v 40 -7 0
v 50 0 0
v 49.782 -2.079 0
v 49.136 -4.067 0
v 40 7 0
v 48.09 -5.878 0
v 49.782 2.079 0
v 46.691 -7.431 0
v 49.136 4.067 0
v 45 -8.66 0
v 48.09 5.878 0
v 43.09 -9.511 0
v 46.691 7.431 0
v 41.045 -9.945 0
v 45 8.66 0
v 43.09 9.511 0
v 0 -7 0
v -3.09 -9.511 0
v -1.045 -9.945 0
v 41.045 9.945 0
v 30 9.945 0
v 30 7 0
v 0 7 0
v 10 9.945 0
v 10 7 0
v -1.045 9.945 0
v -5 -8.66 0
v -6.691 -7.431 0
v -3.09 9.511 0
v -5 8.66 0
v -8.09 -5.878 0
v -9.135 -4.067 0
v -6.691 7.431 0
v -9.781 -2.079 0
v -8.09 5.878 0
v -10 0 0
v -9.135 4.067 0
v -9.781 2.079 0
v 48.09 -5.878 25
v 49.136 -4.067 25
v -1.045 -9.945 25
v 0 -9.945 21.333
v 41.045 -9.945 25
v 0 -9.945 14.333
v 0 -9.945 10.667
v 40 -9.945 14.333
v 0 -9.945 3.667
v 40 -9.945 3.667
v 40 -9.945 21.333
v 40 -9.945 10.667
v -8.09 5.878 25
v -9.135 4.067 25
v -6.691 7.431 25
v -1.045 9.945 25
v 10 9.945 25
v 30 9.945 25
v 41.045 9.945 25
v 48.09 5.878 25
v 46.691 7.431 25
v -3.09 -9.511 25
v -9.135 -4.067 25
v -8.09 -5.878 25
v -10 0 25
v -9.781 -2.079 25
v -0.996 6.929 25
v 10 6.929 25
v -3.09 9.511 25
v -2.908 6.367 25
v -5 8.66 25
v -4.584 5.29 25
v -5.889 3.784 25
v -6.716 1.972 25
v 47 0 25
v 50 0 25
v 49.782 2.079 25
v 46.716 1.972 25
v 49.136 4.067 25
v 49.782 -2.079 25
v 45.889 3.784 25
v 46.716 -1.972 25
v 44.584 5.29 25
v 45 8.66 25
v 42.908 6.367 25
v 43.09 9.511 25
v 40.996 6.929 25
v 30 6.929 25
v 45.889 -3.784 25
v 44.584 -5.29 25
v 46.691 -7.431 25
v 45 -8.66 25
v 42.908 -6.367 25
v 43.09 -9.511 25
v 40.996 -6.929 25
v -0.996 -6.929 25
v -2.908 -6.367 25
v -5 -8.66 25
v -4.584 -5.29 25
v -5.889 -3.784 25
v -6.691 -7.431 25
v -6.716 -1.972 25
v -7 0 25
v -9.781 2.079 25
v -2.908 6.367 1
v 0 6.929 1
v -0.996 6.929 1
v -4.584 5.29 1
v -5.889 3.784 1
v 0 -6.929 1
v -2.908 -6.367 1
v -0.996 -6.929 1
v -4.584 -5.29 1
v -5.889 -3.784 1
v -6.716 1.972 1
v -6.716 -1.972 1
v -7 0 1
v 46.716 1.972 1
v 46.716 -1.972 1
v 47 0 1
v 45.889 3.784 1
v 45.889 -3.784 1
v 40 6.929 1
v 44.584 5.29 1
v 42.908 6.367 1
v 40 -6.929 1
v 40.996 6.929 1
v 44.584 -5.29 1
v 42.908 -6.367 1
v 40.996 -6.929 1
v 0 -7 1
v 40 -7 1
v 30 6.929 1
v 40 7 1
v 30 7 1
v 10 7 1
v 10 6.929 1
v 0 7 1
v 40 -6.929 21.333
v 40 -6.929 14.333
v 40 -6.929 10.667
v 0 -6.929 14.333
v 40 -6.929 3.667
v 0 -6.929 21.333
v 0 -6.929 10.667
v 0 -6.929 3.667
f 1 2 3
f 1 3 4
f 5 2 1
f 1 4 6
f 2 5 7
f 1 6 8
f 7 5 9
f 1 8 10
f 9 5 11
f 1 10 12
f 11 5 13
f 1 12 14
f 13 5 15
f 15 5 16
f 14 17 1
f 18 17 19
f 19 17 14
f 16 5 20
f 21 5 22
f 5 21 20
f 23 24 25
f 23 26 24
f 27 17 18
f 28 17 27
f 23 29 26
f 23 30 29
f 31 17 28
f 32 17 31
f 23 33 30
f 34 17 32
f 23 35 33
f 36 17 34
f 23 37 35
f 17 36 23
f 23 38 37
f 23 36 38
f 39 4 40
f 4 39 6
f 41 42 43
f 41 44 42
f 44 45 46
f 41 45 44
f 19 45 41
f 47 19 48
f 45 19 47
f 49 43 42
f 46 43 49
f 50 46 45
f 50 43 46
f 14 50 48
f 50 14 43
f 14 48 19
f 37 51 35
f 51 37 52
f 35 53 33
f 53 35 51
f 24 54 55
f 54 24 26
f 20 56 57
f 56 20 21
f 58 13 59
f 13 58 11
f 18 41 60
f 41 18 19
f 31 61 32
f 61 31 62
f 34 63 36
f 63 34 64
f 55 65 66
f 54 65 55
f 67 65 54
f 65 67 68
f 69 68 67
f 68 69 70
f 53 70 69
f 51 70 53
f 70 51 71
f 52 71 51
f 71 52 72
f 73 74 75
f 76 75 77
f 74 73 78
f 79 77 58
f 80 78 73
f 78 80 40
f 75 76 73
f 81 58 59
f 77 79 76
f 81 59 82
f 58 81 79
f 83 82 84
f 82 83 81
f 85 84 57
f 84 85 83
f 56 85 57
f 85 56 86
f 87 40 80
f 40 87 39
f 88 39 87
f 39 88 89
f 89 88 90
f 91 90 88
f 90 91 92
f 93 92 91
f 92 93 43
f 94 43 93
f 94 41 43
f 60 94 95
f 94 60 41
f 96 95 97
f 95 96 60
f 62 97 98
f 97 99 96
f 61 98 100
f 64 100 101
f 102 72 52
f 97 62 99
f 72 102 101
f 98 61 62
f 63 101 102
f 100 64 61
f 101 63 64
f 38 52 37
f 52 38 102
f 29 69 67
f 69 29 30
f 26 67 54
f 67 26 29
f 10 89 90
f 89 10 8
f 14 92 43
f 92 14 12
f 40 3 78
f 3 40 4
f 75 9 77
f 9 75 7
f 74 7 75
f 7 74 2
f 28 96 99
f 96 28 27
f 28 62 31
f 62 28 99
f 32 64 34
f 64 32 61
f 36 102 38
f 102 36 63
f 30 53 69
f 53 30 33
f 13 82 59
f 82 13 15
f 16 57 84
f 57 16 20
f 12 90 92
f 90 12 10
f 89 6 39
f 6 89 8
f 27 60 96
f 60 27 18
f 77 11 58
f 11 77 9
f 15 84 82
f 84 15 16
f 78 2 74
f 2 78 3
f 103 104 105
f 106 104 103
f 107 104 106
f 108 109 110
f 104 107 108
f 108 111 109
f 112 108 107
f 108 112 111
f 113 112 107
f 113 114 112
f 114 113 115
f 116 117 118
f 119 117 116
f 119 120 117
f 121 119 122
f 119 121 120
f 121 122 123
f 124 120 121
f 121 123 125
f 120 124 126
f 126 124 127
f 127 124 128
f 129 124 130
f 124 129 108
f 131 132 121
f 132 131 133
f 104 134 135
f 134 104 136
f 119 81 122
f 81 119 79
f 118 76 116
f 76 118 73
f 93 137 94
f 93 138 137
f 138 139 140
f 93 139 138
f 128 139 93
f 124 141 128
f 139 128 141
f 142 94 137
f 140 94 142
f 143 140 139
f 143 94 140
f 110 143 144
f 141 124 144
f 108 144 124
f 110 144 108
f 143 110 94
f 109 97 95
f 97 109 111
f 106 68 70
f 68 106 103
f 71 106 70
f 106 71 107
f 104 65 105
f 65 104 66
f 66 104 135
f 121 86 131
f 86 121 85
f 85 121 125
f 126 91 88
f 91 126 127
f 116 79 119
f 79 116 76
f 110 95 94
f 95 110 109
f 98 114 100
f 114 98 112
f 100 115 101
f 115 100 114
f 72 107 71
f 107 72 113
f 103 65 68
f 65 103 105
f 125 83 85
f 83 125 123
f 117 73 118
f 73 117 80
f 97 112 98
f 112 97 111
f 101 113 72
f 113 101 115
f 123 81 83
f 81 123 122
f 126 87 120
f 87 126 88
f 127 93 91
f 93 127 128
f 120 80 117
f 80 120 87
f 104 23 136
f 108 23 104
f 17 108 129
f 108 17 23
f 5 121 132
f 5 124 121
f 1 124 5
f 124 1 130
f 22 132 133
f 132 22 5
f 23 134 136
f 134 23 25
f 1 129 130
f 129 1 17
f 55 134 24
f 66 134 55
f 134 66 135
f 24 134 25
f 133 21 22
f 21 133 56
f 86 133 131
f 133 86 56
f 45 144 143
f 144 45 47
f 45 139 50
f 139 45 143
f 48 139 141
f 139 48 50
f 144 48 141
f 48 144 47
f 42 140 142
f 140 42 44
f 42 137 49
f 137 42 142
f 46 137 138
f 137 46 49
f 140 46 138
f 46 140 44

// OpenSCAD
holder_h=20;        //anchor holder hight
holder_w=60;        //anchor holder
holder_t=25;        //anchor holder wthikness
holder_wall_t=3;    //anchor holder wall thickness
holder_support_t=1;
top_window_w=20;


strap_w=40;          //wide strap width
    //anchor holder width = wide strap width+20
strap_t_cut=7;      //cut width for the strap
//Calcs
h_displace=(holder_t-(2*strap_t_cut))/3;

difference(){//shaping the holder
hull(){//outer body of the holder
cylinder(r=holder_h/2,h=holder_t);
translate([holder_w-holder_h,0,0])cylinder(r=holder_h/2,h=holder_t);
}
//internal cut
translate([0,0,holder_support_t])hull(){
cylinder(r=holder_h/2-holder_wall_t,h=holder_t);
translate([holder_w-holder_h,0,0])cylinder(r=holder_h/2-holder_wall_t,h=holder_t);
}

//rear opening
translate([0,holder_wall_t-holder_h/2,0])cube([holder_w-holder_h,holder_h-(2*holder_wall_t),holder_support_t]);

//top window
translate([(holder_w-holder_h-top_window_w)/2,0,0])cube([top_window_w,holder_h,holder_t]);

//strap_cuts
translate([0,-holder_h/2,h_displace])cube([strap_w,holder_wall_t+.2,strap_t_cut]);

translate([0,-holder_h/2,strap_t_cut+h_displace*2])cube([strap_w,holder_wall_t+.2,strap_t_cut]);

}
